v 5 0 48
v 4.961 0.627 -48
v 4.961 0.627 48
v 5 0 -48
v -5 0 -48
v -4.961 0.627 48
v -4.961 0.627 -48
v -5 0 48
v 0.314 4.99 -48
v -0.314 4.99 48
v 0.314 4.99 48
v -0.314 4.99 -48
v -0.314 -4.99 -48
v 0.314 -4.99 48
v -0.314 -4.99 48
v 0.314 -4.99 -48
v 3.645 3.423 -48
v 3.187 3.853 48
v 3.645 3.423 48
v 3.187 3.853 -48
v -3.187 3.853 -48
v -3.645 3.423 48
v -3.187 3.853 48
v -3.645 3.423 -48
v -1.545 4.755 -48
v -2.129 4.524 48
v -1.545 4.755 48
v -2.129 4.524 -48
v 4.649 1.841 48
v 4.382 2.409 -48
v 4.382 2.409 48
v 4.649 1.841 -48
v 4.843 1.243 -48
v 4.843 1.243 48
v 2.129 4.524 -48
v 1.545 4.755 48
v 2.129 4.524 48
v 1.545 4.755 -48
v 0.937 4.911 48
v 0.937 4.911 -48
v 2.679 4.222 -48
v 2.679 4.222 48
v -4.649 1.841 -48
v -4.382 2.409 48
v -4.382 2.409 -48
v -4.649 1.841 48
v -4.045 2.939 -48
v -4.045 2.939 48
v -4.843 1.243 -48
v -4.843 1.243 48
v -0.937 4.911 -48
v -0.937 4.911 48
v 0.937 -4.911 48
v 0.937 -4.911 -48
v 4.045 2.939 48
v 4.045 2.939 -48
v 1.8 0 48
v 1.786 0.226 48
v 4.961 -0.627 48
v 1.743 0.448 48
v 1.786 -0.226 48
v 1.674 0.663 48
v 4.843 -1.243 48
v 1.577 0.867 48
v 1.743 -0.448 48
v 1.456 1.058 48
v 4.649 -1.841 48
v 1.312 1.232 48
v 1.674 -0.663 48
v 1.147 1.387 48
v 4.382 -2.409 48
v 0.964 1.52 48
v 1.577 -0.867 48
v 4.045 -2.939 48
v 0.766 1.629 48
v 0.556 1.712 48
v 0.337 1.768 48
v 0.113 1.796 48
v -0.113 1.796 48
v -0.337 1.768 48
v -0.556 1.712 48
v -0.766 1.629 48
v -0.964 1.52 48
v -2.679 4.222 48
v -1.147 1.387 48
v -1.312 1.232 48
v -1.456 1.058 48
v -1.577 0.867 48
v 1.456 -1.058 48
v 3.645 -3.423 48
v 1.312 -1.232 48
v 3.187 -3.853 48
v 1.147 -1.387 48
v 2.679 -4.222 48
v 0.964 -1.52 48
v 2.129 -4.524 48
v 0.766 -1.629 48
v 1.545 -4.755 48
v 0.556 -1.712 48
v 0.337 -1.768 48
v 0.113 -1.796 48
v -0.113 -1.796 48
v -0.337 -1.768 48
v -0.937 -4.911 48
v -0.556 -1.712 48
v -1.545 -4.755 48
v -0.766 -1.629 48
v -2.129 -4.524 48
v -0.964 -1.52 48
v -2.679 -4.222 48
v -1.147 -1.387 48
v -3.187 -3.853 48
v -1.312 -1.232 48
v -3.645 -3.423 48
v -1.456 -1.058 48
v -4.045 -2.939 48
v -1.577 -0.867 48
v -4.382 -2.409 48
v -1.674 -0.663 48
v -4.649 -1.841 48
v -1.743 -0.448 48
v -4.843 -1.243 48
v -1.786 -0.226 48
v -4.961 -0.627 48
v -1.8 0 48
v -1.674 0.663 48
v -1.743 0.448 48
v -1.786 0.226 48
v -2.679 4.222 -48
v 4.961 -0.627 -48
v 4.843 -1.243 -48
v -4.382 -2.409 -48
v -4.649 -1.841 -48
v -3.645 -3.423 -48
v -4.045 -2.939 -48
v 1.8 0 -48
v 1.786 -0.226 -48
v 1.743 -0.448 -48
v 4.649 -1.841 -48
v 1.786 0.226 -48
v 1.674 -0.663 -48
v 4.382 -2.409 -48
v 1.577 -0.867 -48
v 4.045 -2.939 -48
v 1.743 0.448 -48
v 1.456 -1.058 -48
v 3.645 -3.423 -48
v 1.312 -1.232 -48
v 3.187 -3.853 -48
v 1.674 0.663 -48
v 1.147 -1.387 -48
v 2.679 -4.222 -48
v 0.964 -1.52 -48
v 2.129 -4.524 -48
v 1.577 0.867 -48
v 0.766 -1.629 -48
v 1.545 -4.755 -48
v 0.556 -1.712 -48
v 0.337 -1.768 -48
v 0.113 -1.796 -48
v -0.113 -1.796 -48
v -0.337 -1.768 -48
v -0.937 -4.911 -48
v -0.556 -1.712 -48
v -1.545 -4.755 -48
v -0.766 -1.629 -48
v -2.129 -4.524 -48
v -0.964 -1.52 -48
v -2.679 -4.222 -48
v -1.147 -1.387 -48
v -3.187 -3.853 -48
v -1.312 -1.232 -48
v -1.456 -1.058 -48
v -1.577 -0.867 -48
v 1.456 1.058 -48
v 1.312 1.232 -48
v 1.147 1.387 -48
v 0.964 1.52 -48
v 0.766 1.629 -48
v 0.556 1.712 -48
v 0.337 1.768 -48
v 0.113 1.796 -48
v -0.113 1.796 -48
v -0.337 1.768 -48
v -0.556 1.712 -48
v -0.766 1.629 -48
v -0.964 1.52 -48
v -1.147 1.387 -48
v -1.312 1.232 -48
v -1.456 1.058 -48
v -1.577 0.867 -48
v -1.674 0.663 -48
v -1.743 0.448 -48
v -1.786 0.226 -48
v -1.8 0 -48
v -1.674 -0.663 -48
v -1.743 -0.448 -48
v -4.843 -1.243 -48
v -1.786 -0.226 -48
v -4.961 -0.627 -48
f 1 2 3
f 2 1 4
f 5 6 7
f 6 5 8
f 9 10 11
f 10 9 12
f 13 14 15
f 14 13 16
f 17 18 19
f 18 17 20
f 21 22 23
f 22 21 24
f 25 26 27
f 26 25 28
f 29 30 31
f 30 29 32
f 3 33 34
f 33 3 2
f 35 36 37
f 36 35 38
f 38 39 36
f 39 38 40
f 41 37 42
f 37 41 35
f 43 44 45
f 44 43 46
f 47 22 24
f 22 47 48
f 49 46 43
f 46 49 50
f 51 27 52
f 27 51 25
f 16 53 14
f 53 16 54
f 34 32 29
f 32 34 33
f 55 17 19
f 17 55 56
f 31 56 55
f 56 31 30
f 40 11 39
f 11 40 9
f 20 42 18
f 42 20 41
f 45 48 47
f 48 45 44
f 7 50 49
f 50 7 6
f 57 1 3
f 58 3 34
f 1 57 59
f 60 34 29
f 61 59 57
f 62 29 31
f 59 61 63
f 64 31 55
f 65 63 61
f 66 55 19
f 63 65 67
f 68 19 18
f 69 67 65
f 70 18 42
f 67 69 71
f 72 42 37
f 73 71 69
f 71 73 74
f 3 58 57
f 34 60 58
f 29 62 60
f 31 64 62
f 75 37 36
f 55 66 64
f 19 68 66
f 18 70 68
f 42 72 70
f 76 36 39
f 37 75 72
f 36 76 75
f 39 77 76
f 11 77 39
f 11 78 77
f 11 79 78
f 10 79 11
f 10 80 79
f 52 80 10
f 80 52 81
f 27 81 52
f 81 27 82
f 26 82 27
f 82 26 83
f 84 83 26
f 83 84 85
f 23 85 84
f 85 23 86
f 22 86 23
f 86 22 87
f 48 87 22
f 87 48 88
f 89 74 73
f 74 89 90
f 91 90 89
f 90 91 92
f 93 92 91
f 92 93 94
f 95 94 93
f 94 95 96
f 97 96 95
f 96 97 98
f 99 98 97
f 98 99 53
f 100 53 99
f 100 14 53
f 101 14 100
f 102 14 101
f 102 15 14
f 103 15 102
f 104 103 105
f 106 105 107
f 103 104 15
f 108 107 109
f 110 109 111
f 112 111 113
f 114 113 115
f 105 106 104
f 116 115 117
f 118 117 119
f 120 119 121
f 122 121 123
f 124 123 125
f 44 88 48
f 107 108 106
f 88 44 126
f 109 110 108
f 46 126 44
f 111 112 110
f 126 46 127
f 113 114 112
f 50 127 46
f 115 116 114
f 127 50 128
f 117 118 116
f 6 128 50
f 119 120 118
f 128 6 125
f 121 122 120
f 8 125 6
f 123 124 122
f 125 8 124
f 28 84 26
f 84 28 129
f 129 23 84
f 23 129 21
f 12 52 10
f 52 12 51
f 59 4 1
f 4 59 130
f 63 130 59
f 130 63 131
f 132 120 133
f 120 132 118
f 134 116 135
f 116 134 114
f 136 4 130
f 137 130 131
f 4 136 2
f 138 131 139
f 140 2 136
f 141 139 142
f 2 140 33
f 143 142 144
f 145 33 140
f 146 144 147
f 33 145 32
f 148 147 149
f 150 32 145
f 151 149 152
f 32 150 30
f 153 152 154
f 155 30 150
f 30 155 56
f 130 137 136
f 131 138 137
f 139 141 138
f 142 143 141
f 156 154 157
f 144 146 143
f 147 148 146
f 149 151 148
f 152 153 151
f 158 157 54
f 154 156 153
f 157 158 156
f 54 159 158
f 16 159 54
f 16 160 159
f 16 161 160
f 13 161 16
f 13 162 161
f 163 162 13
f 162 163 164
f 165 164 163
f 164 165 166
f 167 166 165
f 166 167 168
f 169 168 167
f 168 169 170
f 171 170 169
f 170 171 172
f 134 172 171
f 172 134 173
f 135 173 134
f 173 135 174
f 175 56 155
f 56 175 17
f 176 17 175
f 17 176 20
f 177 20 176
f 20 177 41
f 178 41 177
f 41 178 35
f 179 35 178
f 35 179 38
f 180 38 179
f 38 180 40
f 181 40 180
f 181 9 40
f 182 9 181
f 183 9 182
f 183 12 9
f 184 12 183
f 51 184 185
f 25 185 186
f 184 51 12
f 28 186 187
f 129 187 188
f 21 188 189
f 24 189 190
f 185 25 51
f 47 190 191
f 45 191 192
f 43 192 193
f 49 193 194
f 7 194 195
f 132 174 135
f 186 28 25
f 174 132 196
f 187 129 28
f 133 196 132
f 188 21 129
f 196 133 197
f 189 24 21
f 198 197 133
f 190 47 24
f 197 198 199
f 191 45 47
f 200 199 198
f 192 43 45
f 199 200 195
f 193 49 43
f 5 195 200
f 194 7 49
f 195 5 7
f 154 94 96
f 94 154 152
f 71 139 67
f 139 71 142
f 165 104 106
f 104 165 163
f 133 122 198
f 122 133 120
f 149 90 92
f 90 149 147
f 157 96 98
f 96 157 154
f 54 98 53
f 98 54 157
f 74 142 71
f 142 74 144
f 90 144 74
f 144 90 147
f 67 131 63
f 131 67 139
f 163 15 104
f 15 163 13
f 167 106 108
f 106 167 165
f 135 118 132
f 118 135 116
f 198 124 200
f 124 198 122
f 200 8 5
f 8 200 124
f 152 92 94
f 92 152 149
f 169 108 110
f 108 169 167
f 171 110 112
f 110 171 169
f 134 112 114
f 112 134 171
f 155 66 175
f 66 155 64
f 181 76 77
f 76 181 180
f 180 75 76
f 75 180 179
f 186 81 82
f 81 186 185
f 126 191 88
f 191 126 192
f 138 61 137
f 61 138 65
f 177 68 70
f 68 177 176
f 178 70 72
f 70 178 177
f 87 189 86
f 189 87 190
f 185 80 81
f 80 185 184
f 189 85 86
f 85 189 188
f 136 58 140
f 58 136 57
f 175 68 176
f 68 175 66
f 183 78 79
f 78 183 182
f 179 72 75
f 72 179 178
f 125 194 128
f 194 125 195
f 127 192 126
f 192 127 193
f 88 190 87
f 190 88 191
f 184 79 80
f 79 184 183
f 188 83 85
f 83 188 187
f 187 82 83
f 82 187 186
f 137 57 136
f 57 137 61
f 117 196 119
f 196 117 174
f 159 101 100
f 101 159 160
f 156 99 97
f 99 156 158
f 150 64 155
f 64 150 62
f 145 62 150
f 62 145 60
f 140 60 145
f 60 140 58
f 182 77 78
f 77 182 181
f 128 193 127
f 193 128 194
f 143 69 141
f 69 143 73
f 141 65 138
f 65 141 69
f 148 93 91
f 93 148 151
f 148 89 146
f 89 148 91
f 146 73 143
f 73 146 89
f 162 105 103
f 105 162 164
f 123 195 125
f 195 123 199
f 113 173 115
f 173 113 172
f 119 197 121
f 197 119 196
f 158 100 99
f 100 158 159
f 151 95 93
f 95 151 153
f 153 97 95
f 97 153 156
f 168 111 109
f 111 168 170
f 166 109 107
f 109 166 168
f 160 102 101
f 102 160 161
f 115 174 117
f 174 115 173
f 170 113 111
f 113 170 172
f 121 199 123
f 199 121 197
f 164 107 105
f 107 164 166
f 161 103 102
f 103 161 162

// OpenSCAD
$fn = 50;


difference() {
	union() {
		translate(v = [0, 0, -48.0000000000]) {
			cylinder(h = 96, r = 5.0000000000);
		}
	}
	union() {
		translate(v = [0, 0, -100.0000000000]) {
			cylinder(h = 200, r = 1.8000000000);
		}
	}
}
